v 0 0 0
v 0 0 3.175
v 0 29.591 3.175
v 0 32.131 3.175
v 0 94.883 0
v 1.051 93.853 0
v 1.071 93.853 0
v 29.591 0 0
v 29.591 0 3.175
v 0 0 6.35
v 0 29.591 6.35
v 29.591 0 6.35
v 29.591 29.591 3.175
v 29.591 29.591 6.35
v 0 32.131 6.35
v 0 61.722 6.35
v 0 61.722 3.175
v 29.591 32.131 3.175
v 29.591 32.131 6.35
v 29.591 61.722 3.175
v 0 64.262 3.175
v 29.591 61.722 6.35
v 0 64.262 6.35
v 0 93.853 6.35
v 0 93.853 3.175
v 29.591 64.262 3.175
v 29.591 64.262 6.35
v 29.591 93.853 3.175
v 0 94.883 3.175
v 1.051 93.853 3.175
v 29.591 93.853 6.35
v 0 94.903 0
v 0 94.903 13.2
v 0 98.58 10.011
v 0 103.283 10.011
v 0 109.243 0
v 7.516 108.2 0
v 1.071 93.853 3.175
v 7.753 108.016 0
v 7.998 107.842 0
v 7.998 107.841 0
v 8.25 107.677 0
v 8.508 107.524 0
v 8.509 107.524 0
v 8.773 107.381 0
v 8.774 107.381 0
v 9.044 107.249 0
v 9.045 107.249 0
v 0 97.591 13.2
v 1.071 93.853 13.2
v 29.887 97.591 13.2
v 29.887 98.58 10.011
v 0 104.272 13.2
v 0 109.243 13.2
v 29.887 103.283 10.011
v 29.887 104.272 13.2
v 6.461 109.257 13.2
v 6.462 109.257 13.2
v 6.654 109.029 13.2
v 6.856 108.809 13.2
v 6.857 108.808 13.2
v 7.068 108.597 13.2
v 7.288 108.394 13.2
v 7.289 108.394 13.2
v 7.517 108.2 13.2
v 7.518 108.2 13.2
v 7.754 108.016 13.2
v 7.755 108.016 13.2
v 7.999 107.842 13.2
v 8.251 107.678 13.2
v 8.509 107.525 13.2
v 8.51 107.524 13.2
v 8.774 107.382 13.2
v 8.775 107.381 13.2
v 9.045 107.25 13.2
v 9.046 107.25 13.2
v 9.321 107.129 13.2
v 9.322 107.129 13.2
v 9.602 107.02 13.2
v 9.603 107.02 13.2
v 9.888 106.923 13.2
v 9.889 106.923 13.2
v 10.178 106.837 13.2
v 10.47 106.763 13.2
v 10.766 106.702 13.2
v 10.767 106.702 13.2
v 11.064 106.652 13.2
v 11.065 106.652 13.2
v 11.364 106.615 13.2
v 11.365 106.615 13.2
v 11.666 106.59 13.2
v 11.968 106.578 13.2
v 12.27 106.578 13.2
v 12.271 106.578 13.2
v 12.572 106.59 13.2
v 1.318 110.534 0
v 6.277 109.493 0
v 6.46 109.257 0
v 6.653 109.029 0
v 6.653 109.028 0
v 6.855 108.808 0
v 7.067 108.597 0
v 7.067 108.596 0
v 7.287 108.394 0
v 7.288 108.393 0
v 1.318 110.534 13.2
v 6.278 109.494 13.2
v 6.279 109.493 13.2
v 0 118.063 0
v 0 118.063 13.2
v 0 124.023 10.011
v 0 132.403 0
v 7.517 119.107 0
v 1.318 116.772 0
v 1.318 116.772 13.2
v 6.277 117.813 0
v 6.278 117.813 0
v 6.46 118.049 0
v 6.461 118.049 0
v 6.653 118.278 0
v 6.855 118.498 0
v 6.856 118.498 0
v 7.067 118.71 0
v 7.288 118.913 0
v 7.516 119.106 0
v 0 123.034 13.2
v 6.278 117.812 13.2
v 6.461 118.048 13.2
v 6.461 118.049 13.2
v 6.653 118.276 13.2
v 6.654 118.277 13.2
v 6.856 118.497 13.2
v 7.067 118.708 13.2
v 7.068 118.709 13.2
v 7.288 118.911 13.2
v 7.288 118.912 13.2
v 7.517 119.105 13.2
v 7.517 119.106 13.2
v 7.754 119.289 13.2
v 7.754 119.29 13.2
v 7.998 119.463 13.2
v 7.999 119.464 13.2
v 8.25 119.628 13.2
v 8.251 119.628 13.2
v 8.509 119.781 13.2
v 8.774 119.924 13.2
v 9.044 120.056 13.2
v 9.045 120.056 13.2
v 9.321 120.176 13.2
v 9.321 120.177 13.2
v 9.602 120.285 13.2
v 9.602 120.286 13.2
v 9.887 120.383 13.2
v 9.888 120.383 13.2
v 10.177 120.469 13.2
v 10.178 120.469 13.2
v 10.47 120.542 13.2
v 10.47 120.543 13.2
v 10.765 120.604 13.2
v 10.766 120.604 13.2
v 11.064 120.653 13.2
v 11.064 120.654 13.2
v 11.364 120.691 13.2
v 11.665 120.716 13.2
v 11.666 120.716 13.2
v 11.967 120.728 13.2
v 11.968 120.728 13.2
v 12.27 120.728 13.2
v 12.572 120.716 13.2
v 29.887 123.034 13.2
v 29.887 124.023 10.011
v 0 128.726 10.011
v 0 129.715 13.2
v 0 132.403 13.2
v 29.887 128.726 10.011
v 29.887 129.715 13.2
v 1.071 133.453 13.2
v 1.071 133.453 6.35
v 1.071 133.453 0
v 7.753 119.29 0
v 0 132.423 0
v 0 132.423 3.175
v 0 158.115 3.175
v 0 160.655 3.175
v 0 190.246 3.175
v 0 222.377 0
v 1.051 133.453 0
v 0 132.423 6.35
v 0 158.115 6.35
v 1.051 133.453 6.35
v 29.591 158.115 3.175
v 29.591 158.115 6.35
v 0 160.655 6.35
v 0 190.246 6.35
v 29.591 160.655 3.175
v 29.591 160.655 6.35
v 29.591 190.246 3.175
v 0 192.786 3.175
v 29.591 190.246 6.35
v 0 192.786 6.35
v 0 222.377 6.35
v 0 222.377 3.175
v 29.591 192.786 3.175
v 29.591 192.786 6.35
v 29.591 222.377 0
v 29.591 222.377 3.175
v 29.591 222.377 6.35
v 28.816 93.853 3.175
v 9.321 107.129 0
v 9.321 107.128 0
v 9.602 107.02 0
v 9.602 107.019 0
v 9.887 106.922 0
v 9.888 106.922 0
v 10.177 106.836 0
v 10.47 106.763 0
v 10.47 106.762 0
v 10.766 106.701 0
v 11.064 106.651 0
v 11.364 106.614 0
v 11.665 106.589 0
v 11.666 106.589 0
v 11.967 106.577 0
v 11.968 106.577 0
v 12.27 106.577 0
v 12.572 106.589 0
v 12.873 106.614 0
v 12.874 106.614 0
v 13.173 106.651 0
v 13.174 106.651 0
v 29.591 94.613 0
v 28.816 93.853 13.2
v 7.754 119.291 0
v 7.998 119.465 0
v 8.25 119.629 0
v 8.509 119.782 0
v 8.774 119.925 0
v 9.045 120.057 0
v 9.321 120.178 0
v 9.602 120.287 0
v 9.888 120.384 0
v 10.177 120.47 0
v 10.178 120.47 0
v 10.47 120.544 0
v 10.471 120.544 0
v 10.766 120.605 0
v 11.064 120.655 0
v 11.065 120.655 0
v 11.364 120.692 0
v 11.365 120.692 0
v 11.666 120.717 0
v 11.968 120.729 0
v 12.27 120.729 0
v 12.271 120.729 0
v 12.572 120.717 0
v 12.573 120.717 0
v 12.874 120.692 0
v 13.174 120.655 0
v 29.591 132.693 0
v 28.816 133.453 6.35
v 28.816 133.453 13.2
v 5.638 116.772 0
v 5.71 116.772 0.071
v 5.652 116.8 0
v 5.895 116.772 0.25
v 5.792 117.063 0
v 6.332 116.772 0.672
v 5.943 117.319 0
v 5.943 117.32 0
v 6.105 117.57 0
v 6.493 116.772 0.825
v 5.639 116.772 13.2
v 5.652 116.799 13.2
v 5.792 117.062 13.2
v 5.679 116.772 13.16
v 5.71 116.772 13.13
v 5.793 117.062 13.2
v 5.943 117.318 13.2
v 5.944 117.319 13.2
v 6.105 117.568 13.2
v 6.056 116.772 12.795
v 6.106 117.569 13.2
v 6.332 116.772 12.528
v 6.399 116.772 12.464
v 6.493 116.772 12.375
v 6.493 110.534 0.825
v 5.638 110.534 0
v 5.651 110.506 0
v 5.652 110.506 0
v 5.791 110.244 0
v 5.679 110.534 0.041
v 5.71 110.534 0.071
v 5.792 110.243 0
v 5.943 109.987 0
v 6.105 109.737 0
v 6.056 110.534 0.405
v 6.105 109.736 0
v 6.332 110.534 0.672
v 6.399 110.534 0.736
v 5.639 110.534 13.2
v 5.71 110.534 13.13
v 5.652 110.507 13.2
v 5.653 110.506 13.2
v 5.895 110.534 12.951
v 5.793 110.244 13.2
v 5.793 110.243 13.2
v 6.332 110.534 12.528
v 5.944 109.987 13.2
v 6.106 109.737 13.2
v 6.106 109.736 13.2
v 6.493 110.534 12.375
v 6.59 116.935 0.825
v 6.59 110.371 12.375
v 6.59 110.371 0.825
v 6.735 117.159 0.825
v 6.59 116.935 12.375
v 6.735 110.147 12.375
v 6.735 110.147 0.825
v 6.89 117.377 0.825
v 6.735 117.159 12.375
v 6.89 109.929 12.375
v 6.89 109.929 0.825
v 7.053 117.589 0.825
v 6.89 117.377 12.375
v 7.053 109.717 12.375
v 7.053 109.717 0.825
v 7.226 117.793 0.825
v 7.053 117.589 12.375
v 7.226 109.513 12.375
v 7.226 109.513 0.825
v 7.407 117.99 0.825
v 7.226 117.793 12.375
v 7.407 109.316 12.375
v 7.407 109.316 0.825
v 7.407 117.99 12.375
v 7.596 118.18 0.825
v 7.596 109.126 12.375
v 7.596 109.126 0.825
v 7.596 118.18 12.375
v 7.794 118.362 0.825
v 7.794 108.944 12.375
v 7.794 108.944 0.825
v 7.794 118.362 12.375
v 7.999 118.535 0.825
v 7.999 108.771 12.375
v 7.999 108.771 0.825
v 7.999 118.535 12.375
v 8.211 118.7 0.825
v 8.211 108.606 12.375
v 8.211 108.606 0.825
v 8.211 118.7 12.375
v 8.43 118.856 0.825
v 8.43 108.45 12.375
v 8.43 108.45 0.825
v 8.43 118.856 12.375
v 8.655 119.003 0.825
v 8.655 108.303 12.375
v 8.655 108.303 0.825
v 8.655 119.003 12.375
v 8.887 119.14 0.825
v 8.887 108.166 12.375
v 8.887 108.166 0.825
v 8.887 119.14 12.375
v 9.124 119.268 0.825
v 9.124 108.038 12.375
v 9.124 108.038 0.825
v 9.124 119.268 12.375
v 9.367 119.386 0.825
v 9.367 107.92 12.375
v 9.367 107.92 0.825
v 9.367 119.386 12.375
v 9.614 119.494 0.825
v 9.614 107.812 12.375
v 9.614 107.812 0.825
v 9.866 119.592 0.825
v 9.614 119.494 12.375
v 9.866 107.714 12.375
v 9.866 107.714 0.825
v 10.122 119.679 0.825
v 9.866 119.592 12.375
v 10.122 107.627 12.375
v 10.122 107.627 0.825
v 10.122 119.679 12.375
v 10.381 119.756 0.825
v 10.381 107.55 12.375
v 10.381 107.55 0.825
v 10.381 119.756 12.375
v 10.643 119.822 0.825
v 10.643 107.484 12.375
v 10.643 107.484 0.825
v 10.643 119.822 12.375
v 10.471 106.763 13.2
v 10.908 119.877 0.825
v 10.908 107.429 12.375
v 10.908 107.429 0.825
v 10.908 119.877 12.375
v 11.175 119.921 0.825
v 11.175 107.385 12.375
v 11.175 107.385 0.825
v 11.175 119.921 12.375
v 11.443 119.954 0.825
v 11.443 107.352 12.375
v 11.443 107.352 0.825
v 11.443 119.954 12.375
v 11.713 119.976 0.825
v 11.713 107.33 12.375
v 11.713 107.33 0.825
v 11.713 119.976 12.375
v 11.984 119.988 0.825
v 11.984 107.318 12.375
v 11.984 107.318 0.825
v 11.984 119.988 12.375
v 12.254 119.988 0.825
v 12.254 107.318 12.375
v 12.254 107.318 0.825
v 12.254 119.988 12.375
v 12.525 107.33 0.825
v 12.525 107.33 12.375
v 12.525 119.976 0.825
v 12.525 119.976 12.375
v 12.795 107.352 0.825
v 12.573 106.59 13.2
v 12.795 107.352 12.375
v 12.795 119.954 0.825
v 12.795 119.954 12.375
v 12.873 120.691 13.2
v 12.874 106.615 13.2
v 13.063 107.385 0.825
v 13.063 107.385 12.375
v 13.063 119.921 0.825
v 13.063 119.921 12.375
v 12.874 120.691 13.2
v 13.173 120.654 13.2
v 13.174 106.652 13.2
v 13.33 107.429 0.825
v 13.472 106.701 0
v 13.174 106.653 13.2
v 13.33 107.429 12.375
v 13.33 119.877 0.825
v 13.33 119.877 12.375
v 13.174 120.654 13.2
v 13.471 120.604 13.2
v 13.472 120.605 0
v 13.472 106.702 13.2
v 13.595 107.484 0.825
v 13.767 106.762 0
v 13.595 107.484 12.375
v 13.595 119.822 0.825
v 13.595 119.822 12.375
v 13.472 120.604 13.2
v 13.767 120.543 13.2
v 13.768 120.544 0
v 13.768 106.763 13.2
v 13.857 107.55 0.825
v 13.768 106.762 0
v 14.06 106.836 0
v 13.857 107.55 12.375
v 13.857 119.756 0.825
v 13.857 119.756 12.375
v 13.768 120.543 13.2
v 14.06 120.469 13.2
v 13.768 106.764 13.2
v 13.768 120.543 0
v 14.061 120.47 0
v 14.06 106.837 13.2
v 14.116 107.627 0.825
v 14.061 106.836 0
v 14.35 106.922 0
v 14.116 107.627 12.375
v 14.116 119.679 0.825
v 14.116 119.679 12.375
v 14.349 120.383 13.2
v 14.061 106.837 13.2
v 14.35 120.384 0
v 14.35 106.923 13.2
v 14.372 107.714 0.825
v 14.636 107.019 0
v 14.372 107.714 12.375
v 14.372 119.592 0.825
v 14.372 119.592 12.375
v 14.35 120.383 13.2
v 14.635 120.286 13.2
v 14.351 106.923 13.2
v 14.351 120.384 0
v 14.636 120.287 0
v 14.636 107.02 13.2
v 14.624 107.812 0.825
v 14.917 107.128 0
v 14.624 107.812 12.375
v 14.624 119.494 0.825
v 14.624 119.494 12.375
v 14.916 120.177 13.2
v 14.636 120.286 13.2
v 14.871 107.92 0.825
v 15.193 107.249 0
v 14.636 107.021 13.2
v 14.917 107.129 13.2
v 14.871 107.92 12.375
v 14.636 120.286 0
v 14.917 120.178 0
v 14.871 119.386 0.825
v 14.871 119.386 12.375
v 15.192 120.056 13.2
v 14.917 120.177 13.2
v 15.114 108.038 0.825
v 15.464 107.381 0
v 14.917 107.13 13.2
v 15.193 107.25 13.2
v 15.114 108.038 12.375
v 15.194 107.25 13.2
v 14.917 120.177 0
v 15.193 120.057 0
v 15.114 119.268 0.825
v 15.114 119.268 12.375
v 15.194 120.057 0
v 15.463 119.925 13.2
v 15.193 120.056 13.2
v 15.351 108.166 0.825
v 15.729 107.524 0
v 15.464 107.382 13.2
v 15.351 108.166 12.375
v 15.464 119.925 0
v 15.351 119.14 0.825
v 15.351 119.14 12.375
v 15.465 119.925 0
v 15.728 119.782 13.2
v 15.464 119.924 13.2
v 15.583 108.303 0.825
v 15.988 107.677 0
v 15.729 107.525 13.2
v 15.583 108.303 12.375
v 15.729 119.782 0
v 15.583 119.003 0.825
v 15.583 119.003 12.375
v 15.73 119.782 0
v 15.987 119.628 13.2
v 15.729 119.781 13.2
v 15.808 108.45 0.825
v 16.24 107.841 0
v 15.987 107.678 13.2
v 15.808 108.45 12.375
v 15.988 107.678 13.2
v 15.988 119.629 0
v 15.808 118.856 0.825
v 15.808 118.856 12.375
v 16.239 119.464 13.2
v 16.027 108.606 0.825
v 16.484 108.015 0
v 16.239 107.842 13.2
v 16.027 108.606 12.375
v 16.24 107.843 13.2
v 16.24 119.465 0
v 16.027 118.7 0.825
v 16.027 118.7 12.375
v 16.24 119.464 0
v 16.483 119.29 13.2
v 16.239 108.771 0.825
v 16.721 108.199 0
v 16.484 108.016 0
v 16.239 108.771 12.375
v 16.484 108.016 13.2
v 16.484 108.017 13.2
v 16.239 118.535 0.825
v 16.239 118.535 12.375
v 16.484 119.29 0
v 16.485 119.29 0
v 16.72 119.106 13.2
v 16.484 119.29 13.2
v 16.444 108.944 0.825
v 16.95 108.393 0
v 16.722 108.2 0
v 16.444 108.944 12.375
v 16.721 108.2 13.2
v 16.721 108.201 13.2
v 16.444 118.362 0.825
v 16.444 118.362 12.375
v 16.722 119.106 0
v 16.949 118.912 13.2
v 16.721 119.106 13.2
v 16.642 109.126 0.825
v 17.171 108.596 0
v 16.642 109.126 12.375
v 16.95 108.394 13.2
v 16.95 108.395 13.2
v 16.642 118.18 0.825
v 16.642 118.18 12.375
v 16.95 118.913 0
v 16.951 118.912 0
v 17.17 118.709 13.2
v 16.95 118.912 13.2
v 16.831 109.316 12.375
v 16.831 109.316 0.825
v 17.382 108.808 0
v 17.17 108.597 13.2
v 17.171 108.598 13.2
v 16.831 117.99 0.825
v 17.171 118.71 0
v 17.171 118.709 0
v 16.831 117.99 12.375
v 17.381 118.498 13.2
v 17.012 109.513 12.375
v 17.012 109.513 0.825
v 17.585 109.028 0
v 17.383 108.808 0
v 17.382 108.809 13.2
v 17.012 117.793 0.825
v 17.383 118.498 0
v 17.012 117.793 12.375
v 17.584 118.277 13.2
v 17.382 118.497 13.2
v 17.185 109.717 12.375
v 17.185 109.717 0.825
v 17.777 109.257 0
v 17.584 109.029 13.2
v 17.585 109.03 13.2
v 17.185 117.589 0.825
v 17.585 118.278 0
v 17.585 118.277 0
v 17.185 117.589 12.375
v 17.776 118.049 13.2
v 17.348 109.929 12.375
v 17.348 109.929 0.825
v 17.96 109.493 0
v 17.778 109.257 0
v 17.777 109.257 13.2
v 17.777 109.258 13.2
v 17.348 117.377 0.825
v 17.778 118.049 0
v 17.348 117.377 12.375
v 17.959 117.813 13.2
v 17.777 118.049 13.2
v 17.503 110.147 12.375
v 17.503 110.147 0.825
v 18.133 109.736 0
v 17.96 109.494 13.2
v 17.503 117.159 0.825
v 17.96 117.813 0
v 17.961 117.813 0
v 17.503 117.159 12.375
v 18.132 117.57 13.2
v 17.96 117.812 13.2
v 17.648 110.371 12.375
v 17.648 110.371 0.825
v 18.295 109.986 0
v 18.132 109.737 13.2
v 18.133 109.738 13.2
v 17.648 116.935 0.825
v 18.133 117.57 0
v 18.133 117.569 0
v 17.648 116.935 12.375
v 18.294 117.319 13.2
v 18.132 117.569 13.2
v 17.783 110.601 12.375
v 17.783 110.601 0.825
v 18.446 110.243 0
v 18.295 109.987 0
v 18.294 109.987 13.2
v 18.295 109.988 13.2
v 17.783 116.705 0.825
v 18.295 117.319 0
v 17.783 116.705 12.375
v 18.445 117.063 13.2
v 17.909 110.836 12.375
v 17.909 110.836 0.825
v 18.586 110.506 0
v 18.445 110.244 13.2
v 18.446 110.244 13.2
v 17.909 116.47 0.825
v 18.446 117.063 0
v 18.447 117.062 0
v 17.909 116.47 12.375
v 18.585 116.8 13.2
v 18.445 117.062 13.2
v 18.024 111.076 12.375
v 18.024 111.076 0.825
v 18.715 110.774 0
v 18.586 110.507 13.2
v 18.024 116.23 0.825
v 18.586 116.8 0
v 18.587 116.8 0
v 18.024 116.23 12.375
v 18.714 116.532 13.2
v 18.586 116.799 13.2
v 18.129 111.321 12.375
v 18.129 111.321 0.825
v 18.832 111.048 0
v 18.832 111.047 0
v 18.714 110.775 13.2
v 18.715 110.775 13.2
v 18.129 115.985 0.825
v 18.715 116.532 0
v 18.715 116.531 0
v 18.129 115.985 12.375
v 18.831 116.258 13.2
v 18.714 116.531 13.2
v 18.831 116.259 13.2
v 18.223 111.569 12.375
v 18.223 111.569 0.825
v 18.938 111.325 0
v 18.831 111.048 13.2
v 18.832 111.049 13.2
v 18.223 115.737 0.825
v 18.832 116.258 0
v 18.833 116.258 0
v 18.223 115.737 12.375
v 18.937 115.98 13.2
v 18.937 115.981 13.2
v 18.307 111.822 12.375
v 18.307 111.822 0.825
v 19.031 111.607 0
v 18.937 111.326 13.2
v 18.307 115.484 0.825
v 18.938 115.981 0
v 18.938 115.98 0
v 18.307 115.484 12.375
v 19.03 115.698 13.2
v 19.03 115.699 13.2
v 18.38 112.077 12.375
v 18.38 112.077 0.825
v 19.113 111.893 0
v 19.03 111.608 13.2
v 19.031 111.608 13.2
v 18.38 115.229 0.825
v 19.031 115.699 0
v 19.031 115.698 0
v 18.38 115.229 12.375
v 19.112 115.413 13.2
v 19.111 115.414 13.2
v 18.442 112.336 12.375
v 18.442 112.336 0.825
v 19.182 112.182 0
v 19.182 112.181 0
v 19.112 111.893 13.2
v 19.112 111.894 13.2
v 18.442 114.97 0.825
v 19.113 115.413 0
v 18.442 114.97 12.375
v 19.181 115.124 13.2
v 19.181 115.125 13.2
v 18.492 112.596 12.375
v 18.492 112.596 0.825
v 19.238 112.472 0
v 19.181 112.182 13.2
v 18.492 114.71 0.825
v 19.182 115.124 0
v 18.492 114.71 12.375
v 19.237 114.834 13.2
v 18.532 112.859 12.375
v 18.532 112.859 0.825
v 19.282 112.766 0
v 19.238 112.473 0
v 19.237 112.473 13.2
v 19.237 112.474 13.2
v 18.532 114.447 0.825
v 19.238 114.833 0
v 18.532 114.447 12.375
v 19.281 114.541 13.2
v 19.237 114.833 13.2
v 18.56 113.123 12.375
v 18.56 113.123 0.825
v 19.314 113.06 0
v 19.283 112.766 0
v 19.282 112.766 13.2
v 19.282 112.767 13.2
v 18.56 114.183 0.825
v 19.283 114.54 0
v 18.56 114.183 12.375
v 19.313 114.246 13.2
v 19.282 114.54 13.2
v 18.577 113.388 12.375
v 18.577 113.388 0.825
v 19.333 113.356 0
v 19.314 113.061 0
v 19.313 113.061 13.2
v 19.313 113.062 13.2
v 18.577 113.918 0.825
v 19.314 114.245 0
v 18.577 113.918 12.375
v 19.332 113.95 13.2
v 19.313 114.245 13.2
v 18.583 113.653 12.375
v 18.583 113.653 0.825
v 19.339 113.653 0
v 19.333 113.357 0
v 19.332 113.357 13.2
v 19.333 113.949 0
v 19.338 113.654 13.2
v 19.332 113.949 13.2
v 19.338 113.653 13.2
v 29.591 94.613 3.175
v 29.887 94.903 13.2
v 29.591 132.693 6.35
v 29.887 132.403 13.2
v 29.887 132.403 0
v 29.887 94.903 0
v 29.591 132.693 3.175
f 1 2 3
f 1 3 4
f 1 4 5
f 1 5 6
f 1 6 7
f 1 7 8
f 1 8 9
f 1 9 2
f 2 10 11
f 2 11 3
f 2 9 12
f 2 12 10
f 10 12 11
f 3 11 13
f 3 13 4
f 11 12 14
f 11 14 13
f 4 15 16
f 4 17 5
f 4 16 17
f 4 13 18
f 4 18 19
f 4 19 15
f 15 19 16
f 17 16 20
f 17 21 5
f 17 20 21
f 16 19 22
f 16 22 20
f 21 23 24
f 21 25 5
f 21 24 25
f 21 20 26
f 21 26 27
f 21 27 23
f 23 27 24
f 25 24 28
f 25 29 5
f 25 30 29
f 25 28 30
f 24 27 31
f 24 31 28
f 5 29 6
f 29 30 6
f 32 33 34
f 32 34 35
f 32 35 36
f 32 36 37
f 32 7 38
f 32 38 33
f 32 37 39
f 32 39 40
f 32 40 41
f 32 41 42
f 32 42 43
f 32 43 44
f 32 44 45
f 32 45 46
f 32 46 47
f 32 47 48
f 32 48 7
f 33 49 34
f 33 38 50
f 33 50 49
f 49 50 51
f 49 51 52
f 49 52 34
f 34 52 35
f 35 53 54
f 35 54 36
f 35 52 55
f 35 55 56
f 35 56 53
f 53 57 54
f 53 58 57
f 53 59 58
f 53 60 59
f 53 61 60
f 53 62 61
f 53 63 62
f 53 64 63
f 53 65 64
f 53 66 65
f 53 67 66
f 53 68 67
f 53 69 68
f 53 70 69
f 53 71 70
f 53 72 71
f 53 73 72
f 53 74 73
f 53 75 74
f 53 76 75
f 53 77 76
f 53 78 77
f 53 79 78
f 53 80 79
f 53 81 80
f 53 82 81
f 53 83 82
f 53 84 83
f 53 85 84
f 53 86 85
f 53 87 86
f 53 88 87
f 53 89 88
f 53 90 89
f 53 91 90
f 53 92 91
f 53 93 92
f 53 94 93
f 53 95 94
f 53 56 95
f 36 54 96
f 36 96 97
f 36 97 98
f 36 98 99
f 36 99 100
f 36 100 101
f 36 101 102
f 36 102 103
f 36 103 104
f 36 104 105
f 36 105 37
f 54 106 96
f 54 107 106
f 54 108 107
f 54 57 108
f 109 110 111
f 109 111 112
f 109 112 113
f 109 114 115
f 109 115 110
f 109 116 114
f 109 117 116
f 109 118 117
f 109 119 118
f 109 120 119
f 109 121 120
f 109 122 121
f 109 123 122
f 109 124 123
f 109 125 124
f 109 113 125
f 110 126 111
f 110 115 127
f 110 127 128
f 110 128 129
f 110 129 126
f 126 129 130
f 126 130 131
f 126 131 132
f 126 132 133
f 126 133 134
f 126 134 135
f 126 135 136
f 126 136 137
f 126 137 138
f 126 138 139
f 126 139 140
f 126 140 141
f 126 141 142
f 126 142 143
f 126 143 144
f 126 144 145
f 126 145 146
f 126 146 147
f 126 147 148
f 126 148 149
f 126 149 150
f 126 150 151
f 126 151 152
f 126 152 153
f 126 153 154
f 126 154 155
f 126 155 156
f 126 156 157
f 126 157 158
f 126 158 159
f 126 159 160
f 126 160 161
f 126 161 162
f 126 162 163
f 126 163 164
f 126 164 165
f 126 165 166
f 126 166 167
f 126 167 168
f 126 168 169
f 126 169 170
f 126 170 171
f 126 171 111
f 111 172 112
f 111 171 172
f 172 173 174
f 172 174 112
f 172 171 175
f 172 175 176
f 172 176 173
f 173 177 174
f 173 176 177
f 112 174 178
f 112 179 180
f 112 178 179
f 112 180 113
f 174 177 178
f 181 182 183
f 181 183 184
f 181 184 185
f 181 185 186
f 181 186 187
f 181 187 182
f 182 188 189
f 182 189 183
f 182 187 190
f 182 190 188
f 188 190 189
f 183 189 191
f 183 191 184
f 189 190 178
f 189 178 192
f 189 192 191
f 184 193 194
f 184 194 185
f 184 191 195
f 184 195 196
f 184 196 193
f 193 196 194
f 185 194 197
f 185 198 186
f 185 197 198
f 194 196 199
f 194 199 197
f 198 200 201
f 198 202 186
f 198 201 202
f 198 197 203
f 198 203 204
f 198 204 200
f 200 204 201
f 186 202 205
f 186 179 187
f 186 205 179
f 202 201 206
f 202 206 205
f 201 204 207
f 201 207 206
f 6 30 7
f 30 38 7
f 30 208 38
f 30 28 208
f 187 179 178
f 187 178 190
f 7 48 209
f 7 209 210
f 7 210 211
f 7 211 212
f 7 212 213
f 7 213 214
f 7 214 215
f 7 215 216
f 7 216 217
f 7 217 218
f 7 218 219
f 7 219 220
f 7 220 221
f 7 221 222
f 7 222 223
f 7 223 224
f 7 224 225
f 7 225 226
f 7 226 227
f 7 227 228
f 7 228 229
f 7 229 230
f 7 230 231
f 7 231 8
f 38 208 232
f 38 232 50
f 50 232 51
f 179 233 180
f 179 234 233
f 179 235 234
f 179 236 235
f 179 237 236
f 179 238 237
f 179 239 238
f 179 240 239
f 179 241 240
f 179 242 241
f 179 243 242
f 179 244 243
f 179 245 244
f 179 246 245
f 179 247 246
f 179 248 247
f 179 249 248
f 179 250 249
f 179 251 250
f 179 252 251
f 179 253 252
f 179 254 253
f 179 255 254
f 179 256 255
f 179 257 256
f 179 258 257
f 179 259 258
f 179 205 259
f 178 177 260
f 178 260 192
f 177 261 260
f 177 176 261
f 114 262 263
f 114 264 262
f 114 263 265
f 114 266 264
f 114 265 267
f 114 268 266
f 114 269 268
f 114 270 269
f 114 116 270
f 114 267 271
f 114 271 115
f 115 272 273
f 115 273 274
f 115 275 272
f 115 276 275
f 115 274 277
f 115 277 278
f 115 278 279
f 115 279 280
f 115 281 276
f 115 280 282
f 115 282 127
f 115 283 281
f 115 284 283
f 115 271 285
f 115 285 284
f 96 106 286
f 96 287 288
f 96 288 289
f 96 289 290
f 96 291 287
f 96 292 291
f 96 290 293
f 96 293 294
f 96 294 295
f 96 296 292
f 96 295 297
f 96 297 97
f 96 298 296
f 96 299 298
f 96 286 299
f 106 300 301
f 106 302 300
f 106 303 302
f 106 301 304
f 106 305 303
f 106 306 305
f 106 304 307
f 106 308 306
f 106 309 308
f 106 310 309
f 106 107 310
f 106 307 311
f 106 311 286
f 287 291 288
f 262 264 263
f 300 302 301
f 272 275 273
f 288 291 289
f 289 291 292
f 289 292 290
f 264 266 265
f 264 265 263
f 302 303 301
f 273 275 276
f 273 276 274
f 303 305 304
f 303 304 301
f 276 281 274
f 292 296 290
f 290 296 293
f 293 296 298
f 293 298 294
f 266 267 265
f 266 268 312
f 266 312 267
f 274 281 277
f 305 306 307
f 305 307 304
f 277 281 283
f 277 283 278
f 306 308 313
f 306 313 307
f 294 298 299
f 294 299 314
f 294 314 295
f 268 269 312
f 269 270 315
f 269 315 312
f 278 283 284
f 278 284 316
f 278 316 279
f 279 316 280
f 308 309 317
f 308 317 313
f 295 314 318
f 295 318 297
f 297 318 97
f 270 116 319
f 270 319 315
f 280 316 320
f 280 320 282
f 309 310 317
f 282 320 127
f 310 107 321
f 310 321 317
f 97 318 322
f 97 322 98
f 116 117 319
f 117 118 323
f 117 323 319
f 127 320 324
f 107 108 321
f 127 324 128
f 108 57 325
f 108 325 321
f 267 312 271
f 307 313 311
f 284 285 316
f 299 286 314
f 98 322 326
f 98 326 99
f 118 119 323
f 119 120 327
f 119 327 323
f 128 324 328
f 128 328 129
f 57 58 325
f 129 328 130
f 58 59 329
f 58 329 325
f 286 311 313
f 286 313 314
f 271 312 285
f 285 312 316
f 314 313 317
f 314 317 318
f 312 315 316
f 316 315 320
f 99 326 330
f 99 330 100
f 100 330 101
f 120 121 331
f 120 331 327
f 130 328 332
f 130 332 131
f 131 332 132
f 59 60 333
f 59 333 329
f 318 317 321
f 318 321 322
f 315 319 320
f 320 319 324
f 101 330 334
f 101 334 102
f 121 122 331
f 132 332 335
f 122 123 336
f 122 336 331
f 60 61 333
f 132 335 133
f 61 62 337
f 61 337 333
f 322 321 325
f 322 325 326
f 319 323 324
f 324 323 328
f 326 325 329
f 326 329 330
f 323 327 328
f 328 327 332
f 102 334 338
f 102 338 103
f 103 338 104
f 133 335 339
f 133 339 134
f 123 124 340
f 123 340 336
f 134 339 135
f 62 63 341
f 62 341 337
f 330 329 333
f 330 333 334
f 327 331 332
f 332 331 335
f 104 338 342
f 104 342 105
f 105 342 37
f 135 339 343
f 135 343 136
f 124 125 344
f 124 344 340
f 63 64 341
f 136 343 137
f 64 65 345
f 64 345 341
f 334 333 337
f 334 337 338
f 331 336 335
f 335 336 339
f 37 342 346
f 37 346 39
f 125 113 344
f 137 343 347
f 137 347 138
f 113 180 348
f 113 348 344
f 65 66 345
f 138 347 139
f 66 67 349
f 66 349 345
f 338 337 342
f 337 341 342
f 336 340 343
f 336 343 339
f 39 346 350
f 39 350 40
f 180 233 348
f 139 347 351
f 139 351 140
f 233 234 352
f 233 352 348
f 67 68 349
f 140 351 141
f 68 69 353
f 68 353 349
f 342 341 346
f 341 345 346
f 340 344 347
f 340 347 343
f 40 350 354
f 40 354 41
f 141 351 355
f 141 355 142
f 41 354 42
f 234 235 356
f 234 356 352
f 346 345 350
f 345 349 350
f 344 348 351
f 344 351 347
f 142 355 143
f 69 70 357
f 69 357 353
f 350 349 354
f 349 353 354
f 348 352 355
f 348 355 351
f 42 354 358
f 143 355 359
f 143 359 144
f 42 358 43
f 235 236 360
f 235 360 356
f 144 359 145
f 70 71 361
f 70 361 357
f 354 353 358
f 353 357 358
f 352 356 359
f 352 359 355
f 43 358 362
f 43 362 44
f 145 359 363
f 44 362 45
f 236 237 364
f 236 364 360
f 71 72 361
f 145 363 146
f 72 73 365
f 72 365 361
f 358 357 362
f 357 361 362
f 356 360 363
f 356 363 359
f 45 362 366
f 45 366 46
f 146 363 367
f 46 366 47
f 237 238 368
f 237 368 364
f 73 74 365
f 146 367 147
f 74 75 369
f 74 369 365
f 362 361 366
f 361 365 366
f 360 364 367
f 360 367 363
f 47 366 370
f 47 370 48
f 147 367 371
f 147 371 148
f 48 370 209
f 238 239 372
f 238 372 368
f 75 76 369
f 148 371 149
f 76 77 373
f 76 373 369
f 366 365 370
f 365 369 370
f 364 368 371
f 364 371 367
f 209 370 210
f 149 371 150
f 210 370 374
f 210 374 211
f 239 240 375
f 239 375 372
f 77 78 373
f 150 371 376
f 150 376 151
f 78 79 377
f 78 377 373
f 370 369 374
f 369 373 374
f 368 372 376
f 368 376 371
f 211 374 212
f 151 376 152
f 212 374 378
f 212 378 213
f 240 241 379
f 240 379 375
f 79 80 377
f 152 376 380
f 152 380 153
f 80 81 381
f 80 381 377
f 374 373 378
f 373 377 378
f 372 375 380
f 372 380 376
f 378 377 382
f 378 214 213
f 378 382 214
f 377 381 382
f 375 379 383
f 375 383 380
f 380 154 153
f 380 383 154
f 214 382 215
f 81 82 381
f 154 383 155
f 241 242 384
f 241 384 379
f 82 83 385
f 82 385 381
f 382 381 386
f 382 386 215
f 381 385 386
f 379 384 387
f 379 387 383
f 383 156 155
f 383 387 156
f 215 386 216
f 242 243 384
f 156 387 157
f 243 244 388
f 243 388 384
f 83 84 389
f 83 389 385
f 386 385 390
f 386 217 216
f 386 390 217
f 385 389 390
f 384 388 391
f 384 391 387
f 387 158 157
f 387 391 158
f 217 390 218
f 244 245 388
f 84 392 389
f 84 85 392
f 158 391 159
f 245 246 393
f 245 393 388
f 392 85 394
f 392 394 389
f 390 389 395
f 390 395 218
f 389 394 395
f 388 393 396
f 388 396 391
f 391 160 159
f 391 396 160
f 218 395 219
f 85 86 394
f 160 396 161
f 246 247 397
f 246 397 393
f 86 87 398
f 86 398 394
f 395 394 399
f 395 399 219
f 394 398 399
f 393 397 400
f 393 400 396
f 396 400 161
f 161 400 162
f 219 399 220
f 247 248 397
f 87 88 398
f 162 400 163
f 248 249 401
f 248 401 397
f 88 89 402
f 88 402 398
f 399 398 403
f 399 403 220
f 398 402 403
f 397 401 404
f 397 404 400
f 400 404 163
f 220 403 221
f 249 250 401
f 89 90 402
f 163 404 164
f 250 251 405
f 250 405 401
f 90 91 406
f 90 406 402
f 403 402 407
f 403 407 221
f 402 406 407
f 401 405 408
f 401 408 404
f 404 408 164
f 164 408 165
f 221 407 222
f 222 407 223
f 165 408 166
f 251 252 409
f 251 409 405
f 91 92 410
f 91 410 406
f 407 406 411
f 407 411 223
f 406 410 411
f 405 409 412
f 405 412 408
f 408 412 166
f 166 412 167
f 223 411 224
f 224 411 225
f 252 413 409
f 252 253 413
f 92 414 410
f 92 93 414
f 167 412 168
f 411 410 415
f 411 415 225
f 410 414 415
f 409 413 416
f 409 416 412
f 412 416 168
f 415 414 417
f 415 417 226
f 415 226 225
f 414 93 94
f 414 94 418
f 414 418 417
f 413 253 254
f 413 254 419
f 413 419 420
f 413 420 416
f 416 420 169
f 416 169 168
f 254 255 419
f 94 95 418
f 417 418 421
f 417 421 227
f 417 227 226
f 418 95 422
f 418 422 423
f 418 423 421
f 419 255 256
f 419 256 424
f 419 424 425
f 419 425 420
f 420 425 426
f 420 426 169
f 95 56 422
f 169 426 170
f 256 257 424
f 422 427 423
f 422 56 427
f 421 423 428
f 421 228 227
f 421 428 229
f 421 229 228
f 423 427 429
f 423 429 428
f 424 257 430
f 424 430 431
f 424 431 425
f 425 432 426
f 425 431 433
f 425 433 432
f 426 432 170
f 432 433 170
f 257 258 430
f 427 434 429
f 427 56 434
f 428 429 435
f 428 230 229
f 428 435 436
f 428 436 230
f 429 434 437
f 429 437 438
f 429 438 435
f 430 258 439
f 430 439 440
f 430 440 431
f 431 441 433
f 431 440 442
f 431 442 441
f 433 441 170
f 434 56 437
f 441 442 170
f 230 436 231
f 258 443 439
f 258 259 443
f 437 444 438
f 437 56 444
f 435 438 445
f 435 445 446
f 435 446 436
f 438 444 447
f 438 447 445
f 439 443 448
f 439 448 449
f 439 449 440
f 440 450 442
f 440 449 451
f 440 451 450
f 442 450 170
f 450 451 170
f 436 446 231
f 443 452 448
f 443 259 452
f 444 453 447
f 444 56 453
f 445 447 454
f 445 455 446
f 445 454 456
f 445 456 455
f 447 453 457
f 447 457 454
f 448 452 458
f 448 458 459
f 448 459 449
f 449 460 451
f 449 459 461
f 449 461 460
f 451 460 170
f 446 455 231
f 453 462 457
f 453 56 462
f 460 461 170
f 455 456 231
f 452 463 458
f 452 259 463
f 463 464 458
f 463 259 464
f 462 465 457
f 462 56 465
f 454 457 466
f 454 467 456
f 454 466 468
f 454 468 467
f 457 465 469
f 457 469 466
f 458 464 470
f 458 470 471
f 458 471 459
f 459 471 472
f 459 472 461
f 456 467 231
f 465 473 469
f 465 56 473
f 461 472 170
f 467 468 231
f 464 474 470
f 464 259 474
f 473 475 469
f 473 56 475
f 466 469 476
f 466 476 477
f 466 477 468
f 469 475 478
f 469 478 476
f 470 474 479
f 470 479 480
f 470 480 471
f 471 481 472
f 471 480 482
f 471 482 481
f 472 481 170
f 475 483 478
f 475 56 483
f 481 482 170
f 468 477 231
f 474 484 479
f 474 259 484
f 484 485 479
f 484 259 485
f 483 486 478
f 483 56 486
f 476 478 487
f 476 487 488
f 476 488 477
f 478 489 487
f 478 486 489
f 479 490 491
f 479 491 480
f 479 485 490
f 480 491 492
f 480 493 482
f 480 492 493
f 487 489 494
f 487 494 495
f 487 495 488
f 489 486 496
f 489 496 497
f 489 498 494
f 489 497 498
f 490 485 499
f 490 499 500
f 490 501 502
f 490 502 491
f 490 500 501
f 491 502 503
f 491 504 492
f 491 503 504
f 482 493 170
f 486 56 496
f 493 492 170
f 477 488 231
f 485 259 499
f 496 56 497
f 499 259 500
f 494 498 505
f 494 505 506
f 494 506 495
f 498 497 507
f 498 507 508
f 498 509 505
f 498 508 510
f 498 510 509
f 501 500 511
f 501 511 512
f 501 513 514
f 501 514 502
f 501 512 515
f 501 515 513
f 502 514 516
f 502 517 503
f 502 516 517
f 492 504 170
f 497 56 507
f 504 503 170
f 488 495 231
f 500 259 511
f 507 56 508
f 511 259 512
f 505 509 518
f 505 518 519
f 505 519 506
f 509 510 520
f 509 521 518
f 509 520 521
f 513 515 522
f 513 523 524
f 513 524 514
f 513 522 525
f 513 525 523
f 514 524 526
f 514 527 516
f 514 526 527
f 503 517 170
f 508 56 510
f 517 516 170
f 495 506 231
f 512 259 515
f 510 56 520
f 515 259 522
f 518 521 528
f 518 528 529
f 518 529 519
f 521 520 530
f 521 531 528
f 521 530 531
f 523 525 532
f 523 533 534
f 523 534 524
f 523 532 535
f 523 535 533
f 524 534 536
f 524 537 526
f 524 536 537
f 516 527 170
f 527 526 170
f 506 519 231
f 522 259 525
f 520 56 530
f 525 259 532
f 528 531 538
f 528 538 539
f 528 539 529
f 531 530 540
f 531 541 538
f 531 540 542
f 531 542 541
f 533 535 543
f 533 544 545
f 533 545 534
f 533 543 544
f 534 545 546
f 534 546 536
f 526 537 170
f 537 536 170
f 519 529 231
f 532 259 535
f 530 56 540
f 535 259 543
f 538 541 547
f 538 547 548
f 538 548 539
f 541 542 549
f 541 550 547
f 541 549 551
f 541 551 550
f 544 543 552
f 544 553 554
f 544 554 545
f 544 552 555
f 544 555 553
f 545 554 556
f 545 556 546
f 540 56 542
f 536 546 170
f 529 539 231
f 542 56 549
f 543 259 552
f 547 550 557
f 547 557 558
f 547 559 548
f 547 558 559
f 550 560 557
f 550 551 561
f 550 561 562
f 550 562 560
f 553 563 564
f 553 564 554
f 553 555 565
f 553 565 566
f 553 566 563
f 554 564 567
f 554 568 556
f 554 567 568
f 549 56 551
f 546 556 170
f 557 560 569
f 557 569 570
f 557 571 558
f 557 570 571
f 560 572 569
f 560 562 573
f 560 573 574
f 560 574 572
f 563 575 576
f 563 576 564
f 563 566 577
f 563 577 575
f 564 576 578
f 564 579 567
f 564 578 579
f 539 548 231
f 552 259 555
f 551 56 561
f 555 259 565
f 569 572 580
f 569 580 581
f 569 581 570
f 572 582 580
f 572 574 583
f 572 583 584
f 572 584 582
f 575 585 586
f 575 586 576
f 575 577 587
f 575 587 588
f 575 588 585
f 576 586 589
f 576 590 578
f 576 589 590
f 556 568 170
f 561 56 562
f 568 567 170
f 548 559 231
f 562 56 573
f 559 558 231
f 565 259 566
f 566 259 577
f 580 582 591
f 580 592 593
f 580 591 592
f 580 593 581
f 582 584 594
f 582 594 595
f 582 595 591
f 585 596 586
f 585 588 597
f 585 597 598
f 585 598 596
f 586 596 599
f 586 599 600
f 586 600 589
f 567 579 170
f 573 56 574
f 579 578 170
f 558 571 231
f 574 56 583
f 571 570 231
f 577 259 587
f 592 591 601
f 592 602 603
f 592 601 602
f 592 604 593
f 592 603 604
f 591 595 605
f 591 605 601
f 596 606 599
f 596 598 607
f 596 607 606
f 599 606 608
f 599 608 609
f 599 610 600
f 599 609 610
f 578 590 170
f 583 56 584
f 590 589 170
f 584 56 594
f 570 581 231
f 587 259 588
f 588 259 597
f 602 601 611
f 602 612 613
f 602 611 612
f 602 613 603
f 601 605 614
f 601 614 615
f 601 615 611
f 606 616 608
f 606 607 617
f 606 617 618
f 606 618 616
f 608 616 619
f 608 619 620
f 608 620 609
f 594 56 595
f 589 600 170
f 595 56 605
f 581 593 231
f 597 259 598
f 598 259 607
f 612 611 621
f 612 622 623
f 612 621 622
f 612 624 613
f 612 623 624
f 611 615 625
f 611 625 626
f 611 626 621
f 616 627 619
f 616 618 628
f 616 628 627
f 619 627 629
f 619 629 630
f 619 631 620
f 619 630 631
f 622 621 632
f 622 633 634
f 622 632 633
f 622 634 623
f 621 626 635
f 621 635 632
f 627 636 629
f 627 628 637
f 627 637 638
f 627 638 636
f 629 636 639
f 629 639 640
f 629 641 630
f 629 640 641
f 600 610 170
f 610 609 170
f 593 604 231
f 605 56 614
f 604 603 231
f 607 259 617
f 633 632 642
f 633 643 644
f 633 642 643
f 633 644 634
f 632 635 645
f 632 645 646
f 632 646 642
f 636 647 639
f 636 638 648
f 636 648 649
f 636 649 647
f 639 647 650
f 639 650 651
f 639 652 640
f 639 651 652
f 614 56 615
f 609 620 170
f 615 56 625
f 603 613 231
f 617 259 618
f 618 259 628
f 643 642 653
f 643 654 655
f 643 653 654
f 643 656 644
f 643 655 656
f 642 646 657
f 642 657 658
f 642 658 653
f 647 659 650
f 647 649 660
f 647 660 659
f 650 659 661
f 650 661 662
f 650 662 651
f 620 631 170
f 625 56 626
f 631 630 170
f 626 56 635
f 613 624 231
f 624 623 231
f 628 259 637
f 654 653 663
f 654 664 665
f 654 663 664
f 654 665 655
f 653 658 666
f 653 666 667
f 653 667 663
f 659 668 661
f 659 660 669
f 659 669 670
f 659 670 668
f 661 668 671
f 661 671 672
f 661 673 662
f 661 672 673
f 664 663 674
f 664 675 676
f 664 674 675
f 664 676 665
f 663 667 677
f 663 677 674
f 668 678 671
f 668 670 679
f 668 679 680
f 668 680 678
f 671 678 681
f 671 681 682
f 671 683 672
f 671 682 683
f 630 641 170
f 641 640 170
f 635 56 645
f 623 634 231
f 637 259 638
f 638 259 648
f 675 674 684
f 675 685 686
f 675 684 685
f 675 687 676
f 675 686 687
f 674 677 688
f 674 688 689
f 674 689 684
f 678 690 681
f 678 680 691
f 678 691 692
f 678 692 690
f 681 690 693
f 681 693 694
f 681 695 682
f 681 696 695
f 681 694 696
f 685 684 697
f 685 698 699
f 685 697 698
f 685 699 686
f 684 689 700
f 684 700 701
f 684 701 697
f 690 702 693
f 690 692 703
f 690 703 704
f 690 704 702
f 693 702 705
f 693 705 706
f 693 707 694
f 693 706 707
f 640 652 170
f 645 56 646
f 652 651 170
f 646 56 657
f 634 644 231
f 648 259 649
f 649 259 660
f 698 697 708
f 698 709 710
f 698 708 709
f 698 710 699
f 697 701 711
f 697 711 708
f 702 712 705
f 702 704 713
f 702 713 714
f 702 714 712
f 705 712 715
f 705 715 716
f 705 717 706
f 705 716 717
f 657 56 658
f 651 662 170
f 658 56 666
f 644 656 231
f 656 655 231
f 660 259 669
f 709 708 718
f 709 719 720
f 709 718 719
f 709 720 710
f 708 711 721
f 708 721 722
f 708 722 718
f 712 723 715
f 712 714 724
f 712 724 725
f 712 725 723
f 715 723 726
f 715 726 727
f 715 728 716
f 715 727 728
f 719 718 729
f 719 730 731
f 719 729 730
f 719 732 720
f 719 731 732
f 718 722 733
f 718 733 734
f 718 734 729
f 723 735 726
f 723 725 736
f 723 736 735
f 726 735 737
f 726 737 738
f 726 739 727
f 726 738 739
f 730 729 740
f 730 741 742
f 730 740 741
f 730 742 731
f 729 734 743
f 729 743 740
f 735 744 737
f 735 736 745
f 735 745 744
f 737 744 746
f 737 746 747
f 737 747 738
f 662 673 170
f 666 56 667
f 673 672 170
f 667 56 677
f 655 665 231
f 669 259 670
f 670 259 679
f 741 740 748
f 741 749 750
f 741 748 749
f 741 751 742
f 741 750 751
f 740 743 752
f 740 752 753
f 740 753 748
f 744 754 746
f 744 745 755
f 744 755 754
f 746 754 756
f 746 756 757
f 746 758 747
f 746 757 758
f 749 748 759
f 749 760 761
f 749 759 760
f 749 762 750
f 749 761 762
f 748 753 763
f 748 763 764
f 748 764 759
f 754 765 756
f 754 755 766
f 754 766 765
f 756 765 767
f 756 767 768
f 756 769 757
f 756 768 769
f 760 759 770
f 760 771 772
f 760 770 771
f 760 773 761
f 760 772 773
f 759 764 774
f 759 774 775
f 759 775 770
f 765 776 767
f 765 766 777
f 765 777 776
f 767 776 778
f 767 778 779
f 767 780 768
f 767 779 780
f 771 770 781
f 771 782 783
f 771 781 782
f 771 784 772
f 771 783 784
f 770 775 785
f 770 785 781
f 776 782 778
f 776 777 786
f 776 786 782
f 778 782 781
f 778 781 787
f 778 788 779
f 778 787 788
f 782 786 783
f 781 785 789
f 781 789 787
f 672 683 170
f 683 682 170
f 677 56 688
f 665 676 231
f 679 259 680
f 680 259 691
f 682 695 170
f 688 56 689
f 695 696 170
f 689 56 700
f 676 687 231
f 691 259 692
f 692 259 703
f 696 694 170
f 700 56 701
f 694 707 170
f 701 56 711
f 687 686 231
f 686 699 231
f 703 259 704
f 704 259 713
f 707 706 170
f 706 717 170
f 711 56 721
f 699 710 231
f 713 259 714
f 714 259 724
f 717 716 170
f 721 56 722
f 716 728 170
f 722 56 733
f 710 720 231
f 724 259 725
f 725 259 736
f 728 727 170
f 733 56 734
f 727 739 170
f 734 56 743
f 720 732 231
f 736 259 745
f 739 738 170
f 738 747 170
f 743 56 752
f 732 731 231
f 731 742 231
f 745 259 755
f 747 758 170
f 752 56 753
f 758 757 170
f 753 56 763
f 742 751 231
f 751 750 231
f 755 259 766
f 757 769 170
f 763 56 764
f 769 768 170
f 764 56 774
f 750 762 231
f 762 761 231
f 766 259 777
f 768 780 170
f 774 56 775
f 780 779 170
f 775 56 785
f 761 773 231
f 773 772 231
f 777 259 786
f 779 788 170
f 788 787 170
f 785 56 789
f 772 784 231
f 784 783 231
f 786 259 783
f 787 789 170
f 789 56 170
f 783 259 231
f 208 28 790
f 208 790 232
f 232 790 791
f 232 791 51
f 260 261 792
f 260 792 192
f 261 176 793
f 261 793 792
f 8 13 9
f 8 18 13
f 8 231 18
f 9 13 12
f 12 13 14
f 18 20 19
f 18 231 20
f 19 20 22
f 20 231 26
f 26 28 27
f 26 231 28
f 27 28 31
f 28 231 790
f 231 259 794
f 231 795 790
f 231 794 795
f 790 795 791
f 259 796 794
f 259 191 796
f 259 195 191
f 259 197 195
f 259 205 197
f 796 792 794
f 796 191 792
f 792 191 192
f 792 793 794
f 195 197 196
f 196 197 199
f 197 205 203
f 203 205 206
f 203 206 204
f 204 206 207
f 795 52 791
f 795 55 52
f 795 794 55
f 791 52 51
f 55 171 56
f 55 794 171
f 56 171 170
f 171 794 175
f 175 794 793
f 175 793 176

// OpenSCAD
// file: ../library/dungeon.scad
// 25.4mm == 1 inch
one_inch = 25.4;

// 1.25 inch (1 inch standard + some extra wiggle room)
tile_width = 1.165 * one_inch;
tile_depth = .25 * one_inch;
grid_spacing = .1 * one_inch;
fudge = 0.0005;

module
dungeon(grid_width = 10, grid_length = 10)
{
    total_grid_length =
        ((tile_width + grid_spacing) * (grid_length - 1)) + tile_width;
    total_grid_width =
        ((tile_width + grid_spacing) * (grid_width - 1)) + tile_width;

    difference()
    {
        cube(size = [ total_grid_length, total_grid_width, tile_depth ]);
        for (n = [1:grid_length - 1]) {
            translate([
                (tile_width + grid_spacing) * (n - 1) + tile_width,
                -fudge,
                (tile_depth / 2)
            ])
            {
                cube(size = [
                    grid_spacing,
                    total_grid_width + (2 * fudge),
                    (tile_depth / 2) +
                    fudge
                ]);
            }
        }
        for (n = [1:grid_width - 1]) {
            translate([
                -fudge,
                (tile_width + grid_spacing) * (n - 1) + tile_width,
                (tile_depth / 2)
            ])
            {
                cube(size = [
                    total_grid_length + (2 * fudge),
                    grid_spacing,
                    (tile_depth / 2) +
                    fudge
                ]);
            }
        }
    }
}

function tile_spacing(n) = (tile_width + grid_spacing) * n + tile_width;
// main file
include <../library/dungeon.scad>
include <../library/train_tracks_generator.scad>

difference()
{
    dungeon(7, 1);
    translate([ -0.02, tile_spacing(2), -1 ])
    {
        scale([ 1.01, 0.99, 1.1 ])
        {
            track(length = tile_spacing(0),
                  end1 = "none",
                  end2 = "none",
                  cutout = false);
        }
    }
}

translate([ 0, tile_spacing(2), 0 ])
{
    scale([ 1.01, 0.99, 1.1 ])
    {
        track(length = tile_spacing(0),
              end1 = "nest",
              end2 = "none",
              cutout = false);
    }
}
